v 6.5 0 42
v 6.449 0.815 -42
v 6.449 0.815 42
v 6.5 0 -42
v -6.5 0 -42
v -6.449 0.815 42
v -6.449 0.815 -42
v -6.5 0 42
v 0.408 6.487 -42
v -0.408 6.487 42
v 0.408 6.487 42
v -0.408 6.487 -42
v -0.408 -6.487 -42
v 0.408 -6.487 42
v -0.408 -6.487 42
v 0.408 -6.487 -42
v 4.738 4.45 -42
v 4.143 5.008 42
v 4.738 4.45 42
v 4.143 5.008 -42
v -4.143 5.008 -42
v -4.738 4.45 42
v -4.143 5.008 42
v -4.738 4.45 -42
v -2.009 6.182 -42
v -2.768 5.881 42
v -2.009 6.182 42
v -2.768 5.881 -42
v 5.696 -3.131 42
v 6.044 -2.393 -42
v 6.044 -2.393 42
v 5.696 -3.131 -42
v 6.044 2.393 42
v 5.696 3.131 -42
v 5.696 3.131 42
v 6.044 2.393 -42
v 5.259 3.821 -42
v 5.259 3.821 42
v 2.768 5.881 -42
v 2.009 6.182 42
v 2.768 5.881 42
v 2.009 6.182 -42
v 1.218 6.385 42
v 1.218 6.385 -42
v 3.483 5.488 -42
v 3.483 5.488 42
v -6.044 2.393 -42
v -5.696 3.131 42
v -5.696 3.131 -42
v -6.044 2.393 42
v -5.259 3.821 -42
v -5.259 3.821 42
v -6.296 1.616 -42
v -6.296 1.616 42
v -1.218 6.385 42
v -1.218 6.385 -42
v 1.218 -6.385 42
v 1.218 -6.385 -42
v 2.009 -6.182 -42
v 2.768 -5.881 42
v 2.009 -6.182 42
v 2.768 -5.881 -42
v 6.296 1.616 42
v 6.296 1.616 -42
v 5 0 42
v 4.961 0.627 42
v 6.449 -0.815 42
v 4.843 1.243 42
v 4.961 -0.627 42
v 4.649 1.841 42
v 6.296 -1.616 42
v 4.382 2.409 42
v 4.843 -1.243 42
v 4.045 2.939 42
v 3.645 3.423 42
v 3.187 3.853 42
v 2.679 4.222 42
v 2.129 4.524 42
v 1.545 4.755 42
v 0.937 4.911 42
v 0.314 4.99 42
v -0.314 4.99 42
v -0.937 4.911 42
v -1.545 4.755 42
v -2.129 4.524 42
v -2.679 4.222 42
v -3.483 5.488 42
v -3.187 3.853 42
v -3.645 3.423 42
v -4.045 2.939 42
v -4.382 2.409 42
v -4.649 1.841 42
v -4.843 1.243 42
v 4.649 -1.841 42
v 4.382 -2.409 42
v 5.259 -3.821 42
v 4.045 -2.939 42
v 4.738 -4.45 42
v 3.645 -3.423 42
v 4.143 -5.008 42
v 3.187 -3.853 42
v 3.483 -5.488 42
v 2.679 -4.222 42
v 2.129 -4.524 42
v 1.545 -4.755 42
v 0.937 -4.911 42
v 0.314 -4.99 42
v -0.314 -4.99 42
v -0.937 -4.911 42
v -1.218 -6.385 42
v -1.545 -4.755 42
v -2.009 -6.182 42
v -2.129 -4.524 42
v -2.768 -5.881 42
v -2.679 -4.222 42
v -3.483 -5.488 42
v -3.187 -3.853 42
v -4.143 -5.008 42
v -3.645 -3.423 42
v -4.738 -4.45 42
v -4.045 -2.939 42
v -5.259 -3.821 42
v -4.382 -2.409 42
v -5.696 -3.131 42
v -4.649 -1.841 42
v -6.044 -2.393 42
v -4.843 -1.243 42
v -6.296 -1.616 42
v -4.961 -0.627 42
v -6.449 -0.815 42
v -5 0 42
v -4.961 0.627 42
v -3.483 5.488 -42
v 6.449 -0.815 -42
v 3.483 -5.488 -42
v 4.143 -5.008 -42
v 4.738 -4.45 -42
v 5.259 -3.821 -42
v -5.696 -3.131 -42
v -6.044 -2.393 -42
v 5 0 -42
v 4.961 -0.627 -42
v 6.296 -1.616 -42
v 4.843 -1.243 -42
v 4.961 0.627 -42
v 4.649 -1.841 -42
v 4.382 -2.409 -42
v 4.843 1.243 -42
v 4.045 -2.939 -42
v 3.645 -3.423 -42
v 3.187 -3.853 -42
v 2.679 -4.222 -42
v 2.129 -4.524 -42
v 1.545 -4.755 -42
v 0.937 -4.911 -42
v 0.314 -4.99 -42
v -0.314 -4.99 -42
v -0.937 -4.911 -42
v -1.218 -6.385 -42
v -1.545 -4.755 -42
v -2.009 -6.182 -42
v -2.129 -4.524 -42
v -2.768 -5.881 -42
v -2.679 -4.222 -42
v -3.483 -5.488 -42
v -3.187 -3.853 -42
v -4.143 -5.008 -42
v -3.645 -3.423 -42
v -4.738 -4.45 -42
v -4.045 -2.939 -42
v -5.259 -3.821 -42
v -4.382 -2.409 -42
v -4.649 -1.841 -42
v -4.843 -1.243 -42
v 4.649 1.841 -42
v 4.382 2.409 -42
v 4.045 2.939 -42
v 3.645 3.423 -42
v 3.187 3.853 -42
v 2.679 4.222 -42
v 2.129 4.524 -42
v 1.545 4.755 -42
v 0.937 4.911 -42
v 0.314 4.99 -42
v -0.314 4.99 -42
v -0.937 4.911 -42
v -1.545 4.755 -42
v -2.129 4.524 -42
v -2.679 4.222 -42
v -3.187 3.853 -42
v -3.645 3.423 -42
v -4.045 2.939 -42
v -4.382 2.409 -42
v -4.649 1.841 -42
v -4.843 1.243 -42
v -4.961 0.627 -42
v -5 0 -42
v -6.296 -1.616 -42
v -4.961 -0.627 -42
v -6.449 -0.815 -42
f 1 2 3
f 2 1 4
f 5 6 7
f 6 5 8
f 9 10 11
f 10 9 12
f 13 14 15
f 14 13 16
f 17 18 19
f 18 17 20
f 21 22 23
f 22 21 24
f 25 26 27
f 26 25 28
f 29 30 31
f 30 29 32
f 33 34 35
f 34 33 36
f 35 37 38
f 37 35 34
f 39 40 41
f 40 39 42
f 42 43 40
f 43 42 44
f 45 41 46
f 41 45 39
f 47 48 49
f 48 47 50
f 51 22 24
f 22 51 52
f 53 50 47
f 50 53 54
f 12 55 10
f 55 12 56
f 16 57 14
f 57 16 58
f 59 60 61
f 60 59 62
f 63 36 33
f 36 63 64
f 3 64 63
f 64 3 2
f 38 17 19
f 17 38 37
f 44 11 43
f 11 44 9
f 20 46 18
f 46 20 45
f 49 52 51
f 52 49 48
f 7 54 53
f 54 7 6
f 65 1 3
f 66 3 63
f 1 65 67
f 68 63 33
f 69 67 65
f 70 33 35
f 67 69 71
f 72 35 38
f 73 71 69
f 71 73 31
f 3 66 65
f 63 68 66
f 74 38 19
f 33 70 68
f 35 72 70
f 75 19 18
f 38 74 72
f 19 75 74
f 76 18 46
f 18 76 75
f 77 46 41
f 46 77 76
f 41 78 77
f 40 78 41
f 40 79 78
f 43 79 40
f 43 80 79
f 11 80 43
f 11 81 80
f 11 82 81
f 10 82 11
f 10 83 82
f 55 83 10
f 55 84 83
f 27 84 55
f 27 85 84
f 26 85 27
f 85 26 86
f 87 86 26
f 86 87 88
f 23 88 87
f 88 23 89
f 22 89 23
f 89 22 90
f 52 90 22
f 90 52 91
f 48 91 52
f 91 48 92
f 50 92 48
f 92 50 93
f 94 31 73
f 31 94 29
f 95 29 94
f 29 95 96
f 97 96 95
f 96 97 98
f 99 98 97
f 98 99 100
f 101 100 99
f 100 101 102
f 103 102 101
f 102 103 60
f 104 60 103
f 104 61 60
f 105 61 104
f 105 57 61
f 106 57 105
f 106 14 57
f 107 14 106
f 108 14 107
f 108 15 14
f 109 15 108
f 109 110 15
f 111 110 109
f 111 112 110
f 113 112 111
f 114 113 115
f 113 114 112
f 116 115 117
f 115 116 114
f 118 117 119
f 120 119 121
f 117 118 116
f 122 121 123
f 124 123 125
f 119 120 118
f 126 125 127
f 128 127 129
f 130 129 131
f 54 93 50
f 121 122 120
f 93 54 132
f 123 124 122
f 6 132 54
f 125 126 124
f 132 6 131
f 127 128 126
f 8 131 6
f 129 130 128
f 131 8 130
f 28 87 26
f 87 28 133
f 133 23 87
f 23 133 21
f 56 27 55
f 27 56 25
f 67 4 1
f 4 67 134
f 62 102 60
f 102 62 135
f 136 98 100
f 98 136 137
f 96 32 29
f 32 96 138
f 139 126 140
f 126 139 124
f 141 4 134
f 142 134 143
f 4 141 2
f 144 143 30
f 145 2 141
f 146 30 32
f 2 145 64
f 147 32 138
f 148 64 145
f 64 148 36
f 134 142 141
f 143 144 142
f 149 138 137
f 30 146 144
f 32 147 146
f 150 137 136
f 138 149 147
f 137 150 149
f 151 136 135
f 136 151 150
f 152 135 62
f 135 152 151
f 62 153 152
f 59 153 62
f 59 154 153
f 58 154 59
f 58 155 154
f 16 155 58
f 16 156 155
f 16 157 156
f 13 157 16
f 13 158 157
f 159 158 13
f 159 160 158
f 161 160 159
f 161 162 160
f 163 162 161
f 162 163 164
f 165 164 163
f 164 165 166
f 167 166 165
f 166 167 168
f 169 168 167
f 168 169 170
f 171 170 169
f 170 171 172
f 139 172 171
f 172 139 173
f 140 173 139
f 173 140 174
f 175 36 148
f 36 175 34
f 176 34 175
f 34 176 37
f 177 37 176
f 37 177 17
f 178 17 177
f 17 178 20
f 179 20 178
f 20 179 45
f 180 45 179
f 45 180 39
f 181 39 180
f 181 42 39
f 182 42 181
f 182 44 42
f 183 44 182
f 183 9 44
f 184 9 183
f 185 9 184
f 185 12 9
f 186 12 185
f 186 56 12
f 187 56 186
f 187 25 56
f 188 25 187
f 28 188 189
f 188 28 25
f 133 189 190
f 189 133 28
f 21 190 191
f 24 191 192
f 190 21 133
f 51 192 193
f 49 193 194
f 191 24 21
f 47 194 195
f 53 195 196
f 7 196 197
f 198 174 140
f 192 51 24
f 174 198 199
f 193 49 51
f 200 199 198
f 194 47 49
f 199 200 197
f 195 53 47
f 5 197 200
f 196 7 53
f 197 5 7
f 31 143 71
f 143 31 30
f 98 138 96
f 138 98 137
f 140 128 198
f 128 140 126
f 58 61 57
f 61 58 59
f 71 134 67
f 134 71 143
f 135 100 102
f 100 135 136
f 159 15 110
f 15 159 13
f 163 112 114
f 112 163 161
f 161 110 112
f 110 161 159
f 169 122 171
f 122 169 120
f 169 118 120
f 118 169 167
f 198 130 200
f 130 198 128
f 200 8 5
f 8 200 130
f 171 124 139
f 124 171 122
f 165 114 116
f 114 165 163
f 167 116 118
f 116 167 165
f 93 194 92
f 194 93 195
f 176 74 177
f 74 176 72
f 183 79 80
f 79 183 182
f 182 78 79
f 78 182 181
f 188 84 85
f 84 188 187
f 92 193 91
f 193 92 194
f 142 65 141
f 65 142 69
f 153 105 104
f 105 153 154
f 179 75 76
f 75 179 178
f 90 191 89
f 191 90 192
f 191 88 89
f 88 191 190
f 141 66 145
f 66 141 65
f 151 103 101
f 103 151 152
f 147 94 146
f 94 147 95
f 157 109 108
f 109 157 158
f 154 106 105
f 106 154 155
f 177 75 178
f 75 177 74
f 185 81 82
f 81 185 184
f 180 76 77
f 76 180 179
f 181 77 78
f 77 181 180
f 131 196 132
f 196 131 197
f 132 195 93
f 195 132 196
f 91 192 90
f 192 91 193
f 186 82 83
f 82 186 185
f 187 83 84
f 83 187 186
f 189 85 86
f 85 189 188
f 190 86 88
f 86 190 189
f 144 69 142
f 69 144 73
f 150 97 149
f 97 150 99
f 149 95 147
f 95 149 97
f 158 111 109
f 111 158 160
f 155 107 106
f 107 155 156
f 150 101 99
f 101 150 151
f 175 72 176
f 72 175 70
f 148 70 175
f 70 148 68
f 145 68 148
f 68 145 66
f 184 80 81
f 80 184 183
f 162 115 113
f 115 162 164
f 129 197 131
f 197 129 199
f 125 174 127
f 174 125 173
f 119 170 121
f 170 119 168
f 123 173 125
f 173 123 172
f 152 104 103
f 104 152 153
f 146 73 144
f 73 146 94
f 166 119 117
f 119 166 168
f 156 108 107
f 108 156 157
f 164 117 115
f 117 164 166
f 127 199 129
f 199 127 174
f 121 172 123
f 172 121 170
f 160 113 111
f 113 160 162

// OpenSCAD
$fn = 50;


difference() {
	union() {
		translate(v = [0, 0, -42.0000000000]) {
			cylinder(h = 84, r = 6.5000000000);
		}
	}
	union() {
		translate(v = [0, 0, -100.0000000000]) {
			cylinder(h = 200, r = 5);
		}
	}
}
